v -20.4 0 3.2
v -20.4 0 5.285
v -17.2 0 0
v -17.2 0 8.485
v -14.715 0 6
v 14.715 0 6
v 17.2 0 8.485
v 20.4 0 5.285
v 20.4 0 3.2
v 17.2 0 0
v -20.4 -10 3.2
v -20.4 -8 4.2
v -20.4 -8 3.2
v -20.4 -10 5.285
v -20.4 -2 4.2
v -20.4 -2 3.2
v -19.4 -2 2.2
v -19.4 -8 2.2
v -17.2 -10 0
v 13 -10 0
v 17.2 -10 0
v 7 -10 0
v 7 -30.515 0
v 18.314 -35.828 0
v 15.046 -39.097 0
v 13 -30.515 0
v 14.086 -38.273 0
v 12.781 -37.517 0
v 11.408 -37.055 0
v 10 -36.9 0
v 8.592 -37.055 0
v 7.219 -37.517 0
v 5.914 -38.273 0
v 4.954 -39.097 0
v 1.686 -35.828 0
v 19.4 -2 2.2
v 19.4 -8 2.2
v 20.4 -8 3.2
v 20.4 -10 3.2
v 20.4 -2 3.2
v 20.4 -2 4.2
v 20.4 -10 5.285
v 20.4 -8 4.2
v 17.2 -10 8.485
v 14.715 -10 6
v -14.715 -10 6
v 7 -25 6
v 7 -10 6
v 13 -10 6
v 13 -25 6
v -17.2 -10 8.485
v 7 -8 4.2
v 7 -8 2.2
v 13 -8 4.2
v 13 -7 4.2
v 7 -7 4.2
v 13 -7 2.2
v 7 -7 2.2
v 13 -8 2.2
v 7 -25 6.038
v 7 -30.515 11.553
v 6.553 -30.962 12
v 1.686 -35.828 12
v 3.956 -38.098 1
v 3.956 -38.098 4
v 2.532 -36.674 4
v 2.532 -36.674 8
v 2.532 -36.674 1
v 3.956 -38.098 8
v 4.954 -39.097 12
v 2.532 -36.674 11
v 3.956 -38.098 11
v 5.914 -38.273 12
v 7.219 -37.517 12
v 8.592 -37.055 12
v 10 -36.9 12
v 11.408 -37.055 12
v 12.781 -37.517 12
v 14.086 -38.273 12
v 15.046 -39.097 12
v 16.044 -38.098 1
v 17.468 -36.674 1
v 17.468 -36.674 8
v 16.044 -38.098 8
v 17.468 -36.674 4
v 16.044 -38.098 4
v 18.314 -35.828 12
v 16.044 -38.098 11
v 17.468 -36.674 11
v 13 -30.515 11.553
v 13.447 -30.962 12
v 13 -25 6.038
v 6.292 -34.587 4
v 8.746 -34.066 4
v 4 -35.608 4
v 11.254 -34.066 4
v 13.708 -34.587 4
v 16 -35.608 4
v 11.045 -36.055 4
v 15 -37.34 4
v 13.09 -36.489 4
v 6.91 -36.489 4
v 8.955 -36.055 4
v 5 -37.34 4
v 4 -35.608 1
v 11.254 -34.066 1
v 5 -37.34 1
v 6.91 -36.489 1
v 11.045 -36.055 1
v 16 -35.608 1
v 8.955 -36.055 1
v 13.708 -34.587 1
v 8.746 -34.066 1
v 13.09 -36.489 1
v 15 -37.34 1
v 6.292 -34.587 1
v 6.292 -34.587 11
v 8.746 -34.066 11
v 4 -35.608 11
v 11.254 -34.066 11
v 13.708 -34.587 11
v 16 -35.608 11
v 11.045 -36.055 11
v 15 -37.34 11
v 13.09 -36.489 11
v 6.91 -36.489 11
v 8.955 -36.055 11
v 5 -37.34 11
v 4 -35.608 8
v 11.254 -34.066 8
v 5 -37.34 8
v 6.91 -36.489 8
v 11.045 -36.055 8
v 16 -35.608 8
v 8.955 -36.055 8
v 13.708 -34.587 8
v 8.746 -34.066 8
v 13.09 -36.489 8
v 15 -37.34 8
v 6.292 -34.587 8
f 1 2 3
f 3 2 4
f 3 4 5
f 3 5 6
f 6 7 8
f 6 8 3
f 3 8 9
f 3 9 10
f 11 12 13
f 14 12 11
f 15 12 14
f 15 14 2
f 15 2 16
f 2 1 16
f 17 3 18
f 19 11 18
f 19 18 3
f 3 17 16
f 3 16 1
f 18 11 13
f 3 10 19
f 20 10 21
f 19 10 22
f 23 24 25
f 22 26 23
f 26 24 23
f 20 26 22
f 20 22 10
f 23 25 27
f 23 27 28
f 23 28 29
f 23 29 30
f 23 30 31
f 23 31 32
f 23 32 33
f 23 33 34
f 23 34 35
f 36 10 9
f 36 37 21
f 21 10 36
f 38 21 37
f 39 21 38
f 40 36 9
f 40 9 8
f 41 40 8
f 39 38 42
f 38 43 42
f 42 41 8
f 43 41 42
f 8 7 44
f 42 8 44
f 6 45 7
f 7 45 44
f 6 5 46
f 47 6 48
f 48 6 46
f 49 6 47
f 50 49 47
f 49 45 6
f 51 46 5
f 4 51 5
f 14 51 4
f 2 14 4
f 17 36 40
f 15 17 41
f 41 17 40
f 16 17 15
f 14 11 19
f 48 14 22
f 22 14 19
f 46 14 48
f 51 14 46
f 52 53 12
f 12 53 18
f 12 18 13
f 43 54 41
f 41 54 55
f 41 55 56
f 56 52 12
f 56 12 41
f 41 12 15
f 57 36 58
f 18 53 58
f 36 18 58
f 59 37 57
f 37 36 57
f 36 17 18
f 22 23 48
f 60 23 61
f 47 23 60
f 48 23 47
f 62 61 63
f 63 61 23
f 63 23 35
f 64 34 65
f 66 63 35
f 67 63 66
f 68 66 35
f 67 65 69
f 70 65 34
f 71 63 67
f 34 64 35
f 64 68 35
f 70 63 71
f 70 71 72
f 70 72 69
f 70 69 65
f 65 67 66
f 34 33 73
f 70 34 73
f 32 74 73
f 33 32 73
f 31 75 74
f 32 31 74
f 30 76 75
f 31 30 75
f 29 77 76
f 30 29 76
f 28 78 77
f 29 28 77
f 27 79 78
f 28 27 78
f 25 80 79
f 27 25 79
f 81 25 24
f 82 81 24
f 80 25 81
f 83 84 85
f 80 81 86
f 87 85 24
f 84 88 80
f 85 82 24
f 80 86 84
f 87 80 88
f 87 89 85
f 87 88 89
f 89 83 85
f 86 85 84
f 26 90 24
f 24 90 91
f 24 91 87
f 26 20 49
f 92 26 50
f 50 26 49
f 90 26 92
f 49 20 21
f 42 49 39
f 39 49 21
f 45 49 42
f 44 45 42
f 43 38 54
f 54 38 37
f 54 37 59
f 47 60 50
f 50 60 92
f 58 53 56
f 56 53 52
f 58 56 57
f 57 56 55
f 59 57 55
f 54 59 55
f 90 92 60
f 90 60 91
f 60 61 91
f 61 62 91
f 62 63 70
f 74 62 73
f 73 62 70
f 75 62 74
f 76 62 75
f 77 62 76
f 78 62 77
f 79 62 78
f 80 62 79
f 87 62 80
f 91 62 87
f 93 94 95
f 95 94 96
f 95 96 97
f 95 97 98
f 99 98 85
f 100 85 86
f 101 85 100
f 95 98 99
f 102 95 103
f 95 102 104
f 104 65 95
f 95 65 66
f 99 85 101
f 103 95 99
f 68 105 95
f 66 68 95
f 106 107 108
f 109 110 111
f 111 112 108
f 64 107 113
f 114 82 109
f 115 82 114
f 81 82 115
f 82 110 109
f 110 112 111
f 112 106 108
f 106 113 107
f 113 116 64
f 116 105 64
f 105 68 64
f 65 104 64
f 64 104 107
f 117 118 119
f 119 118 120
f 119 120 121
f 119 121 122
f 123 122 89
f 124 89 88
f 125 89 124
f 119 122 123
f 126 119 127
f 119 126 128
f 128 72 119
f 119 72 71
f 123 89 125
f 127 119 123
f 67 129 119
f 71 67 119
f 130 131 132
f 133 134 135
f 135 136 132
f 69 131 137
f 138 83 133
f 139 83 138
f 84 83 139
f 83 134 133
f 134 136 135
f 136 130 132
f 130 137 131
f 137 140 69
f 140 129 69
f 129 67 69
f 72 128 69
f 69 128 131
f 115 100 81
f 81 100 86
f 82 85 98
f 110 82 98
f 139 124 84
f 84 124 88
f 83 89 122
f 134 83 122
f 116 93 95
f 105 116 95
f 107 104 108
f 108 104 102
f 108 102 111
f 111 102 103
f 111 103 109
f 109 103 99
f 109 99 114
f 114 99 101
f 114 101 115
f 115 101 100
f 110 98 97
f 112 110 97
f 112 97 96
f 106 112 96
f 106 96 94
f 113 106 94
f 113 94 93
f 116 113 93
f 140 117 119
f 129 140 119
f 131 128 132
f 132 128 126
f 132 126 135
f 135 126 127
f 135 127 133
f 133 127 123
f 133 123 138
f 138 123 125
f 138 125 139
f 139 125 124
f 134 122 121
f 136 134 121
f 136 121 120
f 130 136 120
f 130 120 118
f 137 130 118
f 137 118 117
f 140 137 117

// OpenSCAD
//-- Stepper mounted extruder cable harness strain relief
//-- with nylon ties
//-- by AndrewBCN - Barcelona, Spain - December 2014
//-- GPLV3

//-- I designed this for use with Marty Rice's awesome
//-- Direct Drive Extruder which I have installed on my
//-- P3Steel, but it can probably be used for many other
//-- extruder setups. Simple fact is,  there is a thick
//-- bunch of electrical wires that comes out of the extruder, go
//-- around the top of the printer and then down to the
//-- RAMPS electronics. All this moves left and right together
//-- with the X-carriage and common sense dictates that a strain
//-- relief is required to avoid wire breakage and the usual
//-- disastrous consequences.
//-- I have designed this strain relief so that it is very easy
//-- to install even after everything is in place. It requires
//-- one long and two short nylon ties, the long one goes around
//-- the stepper and the two shorter ones are tightened around the
//-- cable harness.

//-- Some tweaks by MRice - I made the bit around the cables 
//-- curved so that it would grab a little better, and 
//-- parameterized the larger ziptie cut and then made it a 
//-- little wider than the original.

//-- Parameters
large_ziptie_w = 6;
small_ziptie_w = 3;
mount_w = 4 + large_ziptie_w;


//-- Modules
module ziptie_groove() {
  rotate([90,0,0]) difference() {
        cylinder(r=12,h=small_ziptie_w);
        translate([0,0,-1]) cylinder(r=10,h=small_ziptie_w+2);
  }
}

module strf() {
  // stepper mount
  difference() {
    union() {
      union() {
	    cube([17.2,6,mount_w]);
       translate([17.2,0,0]) rotate([0,0,45]) cube([6,6,mount_w]);
      }
      mirror([1,0,0]) union() {
      	 cube([17.2,6,mount_w]);
	    translate([17.2,0,0]) rotate([0,0,45]) cube([6,6,mount_w]);
      }
    }
    // tunnel for nylon tie
    translate([-25,2.2,mount_w/2-large_ziptie_w/2]) cube([50,large_ziptie_w/3,large_ziptie_w]);
    // delete some useless material
    translate([-30.4,-1,-.5]) cube([10,10,mount_w+1]);
    mirror([1,0,0]) translate([-30.4,-1,-.5]) cube([10,10,mount_w+1]);
  }
  // arm
  difference() {
    union() {
      translate([7,0,7]) cube([6,6,28]);
      translate([7,6,25]) cube([6,6,10]);
      translate([7,0,33]) rotate([0,45,0]) cube([6,12,10]);
      translate([13,0,33]) mirror([1,0,0]) rotate([0,45,0]) cube([6,12,10]);
      translate([7,0,33]) cube([6,12,10]);
    }
    // cup to hold harness
    translate([10,16,49.5]) rotate([90,0,0]) scale([1,1.4,1]) #cylinder(r=9, h=18,$fn=40);
    // save some material
    translate([4,13.08,17.9]) rotate([45,0,0]) cube([10,10,10]);
    // tunnels for nylon ties
    translate([10,4,46]) #ziptie_groove();
    translate([10,11,46]) #ziptie_groove();
  }
}

//-- Print the part
rotate([90,0,0]) strf();
